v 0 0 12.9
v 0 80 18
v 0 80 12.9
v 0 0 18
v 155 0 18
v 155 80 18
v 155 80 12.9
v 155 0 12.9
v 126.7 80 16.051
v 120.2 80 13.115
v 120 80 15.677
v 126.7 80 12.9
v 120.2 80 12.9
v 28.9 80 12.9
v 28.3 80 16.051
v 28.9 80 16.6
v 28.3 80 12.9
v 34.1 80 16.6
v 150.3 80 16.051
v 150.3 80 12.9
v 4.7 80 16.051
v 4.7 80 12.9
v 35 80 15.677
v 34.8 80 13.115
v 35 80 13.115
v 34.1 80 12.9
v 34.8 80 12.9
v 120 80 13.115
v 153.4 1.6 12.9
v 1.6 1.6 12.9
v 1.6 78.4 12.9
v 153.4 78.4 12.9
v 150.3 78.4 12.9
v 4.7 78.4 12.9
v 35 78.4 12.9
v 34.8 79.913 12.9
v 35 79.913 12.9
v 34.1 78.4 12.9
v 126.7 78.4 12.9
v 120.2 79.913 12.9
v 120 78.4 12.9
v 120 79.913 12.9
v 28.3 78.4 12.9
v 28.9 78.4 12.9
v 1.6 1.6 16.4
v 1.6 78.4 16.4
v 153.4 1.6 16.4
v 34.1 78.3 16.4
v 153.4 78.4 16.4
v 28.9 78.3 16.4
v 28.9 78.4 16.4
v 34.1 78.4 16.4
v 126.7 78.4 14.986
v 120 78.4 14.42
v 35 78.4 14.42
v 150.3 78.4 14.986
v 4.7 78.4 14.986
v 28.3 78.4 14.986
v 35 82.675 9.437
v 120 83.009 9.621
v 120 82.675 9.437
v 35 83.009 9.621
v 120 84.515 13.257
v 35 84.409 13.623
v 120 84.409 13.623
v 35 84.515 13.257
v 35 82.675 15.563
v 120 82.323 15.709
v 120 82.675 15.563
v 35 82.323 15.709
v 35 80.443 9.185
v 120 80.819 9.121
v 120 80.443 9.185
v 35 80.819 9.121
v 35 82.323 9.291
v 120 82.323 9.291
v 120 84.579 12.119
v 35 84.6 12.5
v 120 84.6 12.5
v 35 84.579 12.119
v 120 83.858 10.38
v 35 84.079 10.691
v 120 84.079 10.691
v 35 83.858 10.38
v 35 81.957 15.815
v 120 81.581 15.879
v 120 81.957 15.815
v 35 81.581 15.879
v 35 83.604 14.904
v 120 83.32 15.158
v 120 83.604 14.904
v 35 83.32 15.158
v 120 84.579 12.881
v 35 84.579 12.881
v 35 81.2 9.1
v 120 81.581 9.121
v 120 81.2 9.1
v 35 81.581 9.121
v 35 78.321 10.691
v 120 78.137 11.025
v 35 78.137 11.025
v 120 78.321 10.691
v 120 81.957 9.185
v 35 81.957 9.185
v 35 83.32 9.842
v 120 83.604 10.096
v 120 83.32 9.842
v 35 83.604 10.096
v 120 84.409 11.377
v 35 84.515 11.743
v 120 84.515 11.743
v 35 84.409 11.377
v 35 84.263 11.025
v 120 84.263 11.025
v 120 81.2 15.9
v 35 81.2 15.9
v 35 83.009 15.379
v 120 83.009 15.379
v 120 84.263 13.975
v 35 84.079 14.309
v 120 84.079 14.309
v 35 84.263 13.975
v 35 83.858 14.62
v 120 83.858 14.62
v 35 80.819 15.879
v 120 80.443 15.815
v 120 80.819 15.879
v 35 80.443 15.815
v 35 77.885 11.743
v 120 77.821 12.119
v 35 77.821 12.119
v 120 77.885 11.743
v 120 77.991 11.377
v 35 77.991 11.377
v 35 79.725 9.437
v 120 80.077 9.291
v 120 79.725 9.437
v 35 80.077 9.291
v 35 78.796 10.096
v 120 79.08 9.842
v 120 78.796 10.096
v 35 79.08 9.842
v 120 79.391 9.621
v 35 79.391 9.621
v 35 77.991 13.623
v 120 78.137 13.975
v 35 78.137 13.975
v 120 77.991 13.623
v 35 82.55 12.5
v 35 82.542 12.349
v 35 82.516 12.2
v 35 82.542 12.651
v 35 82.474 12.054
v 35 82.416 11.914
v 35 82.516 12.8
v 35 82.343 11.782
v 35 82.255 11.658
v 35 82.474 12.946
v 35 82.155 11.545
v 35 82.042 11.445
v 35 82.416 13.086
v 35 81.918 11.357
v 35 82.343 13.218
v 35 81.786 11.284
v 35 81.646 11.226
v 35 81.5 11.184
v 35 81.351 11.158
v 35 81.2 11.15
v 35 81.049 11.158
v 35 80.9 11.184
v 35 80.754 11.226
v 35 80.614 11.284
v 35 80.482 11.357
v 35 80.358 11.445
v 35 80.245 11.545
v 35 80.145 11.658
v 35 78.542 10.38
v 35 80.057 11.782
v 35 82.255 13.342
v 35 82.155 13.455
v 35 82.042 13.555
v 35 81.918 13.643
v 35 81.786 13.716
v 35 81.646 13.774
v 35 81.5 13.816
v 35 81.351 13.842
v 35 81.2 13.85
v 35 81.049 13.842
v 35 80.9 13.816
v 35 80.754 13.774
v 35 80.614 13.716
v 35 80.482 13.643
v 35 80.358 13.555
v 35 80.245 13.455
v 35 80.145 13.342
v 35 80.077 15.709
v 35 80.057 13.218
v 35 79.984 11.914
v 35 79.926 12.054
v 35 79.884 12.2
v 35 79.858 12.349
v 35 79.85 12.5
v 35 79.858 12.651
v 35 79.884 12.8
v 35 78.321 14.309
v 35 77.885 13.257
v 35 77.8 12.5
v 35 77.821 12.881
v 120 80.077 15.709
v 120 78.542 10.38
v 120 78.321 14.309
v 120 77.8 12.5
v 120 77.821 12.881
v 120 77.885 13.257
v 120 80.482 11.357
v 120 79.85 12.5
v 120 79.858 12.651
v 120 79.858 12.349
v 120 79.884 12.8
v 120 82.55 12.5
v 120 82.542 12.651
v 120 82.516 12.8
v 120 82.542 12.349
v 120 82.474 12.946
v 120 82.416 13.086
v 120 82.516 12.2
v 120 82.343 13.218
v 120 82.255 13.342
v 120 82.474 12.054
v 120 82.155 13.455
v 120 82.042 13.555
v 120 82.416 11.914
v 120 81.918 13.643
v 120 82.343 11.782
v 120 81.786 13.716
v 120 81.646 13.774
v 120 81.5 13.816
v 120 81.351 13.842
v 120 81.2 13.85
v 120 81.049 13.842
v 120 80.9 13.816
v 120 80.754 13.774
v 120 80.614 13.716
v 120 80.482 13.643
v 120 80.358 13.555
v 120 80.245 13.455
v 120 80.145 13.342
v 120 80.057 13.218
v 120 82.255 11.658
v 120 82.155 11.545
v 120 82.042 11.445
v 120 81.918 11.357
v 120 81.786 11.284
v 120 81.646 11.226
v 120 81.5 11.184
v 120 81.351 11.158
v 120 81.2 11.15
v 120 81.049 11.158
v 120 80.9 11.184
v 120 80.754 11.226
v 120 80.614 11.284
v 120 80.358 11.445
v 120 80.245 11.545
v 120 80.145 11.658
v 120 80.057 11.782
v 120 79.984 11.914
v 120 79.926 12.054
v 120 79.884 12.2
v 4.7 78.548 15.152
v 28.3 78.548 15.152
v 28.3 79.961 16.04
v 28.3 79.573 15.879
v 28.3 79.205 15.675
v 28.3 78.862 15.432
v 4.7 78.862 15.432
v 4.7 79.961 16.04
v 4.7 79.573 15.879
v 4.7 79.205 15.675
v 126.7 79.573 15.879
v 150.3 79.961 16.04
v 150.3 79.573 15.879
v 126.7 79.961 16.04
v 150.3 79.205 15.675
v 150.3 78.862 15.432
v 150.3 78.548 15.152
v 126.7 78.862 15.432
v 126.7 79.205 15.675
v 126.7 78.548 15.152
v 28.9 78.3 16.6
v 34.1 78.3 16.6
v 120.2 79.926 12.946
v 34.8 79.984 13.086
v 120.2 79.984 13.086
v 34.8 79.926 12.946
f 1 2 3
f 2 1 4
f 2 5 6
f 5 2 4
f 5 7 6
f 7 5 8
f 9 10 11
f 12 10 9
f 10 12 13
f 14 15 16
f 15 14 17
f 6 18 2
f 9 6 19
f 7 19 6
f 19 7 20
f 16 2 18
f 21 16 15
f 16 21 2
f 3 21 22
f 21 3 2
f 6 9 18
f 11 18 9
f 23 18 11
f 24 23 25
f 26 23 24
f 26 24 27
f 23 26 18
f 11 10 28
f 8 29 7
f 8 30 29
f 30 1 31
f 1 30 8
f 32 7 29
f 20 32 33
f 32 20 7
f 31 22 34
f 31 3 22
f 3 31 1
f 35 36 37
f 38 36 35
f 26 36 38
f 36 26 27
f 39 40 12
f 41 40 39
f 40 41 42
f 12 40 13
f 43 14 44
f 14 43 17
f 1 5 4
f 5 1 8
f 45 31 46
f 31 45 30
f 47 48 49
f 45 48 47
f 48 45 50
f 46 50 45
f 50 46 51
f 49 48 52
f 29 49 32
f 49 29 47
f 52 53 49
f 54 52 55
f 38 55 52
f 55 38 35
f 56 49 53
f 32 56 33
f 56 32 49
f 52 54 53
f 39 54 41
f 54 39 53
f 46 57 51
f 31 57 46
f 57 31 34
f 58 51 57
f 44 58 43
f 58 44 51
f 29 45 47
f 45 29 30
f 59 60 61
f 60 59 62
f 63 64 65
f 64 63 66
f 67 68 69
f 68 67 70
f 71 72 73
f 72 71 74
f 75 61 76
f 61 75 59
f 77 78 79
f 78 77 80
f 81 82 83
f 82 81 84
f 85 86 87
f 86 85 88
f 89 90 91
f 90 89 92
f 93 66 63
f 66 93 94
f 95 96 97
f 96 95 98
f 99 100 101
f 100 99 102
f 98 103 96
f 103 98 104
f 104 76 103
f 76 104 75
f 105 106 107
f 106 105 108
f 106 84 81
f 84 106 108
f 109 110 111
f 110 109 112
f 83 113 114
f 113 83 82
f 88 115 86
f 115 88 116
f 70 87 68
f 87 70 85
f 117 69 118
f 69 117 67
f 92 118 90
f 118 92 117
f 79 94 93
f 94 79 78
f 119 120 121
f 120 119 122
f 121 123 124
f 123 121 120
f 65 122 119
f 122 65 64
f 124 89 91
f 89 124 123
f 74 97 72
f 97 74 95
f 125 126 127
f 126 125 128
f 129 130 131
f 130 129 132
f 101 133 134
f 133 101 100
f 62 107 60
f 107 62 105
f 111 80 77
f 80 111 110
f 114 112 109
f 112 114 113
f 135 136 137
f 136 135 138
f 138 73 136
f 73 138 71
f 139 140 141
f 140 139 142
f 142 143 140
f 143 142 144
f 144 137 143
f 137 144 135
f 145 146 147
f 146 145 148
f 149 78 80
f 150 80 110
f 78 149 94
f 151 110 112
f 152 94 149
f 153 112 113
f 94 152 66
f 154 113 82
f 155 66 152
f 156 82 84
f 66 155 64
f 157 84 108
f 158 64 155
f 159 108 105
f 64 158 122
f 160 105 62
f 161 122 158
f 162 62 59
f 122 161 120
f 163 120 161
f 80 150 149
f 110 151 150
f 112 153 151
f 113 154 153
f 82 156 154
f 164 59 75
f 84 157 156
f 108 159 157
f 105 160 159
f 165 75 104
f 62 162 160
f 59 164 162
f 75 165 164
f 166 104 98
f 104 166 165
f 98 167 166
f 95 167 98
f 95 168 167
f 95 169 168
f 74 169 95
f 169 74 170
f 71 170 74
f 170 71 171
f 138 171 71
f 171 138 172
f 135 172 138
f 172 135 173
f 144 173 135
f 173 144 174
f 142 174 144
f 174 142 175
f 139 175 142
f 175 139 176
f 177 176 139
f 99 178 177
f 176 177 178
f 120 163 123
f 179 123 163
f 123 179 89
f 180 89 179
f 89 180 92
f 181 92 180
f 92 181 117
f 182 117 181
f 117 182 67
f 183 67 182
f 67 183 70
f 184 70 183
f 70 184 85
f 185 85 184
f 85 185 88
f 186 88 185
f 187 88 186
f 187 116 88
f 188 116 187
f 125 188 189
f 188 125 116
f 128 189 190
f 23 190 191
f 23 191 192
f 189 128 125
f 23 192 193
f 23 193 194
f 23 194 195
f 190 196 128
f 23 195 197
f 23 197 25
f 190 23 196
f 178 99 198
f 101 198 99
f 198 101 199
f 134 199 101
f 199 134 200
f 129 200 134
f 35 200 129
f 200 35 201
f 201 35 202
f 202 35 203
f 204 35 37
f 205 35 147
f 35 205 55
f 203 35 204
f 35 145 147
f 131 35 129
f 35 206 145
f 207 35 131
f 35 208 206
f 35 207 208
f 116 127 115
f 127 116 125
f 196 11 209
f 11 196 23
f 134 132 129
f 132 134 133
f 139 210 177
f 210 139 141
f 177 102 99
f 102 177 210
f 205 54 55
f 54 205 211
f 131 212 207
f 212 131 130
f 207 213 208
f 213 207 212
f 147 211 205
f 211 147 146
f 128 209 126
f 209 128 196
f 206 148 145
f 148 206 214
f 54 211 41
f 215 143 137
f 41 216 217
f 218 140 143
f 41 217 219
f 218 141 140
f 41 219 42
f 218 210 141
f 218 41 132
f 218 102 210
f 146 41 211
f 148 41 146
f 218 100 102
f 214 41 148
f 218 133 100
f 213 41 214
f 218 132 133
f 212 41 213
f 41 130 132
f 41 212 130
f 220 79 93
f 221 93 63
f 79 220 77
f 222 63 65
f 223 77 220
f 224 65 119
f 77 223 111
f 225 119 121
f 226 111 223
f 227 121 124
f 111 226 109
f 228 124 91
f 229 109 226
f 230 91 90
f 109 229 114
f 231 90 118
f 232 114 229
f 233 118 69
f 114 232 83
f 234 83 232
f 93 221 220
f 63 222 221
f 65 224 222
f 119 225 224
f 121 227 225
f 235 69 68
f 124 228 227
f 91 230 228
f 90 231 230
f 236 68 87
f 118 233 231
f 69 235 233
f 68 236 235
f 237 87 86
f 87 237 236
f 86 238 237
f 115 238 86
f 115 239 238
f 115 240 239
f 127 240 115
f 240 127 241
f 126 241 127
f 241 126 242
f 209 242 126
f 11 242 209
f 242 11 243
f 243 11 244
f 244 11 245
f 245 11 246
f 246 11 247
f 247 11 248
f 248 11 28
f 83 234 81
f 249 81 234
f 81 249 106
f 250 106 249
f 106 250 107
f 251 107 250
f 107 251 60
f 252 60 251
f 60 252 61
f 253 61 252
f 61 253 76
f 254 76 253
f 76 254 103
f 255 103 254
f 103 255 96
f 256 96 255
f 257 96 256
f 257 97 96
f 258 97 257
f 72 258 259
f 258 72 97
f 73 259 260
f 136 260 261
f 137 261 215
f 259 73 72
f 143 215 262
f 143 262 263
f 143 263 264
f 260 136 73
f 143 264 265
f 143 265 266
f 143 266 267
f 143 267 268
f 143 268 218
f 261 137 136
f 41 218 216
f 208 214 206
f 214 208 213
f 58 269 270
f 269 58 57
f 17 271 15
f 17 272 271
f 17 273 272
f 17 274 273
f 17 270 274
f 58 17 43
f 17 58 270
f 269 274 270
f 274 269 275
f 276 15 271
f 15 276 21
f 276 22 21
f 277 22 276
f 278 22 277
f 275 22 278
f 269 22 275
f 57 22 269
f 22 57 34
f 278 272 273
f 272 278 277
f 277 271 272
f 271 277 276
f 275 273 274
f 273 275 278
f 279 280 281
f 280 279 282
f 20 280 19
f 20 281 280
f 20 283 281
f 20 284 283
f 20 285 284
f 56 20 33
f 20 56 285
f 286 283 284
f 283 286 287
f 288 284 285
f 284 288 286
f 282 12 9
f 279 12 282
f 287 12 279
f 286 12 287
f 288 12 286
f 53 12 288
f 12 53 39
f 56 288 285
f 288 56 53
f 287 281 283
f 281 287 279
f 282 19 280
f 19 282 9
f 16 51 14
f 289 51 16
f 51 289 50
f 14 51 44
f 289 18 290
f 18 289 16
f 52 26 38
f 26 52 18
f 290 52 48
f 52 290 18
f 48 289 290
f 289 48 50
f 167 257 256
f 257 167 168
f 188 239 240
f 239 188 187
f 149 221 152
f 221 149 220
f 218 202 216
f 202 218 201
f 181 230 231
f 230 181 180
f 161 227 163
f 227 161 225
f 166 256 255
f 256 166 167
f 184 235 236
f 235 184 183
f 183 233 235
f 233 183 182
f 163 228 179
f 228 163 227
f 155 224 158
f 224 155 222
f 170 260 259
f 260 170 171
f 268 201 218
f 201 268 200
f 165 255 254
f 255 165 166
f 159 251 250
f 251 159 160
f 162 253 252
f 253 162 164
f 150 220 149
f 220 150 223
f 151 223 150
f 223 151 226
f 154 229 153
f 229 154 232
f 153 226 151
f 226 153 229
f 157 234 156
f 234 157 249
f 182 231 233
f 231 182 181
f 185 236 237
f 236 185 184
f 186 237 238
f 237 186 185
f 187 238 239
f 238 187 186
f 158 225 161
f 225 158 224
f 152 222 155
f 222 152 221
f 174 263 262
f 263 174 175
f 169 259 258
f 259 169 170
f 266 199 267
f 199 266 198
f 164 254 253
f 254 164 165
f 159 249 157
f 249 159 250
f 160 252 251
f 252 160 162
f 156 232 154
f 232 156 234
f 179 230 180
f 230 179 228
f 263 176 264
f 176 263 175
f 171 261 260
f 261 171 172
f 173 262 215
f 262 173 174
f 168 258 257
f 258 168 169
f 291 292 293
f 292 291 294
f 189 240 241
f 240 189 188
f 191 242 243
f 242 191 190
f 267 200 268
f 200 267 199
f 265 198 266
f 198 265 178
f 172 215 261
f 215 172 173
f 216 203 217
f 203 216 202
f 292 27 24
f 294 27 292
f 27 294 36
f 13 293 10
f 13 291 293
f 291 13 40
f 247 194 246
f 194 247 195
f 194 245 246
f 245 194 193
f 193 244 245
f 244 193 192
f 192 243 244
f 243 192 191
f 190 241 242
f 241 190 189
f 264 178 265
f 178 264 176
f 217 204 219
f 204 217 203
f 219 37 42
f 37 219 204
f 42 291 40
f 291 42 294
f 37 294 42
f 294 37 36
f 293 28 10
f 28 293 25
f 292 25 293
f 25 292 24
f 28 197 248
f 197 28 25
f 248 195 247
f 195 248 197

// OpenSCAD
// Generated by Mecha-Splicer: clamshell_terminal v1
// Dimension-based CAD ONLY: unknown PCB screw positions, USB access and real fit.
// lid / display tray (down-facing open pocket at closed angle), all dimensions in mm
$fn=56;
W=155.0; D=80.0; wall=1.6; floor=1.6;
HBASE=12.1; HLID=5.1; gap=0.8;
hy=81.2; hz=12.5;
kr=3.4; bore=2.7;

module lid_shell() {
  difference() {
    union() {
      difference() {
        translate([0,0,12.9]) cube([W,D,HLID]);
        translate([wall,wall,12.8]) cube([W-2*wall,D-2*wall,HLID-floor+0.1]);
      }
      translate([35.0,hy,hz]) rotate([0,90,0]) cylinder(h=85.0,r=kr);
    }
    // Lid-side four-wire cable entry (opposed to left-side base slot)
    translate([28.9,78.30000000000001,12.8]) cube([5.2,1.8,3.8000000000000003]);
    // Relief for two base knuckles entering lid rear wall at all open angles
    for (x=[4.7,126.7]) translate([x,hy,hz]) rotate([0,90,0]) cylinder(h=23.6,r=3.75);
    translate([34.8,hy,hz]) rotate([0,90,0]) cylinder(h=85.4,d=bore);
  }
}
lid_shell();
